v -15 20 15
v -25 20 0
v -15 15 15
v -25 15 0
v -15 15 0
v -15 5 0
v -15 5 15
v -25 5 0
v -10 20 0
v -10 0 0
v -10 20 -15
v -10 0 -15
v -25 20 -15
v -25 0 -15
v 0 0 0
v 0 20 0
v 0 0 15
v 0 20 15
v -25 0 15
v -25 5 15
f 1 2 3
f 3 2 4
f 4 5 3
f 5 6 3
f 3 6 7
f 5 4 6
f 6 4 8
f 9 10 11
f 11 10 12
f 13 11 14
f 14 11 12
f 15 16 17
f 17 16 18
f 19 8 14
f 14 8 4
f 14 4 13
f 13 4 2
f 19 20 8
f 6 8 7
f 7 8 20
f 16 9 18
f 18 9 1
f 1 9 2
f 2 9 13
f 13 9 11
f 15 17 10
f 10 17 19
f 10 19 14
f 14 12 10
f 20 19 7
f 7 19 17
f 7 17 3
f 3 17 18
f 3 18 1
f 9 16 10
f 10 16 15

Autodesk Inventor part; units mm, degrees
ref_plane "YZ Plane" through (0, 0, 0) normal (1, 0, 0) x (0, 1, 0)
ref_plane "XZ Plane" through (0, 0, 0) normal (0, 1, 0) x (-1, 0, 0)
ref_plane "XY Plane" through (0, 0, 0) normal (0, 0, 1) x (1, 0, 0)
sketch "Sketch3" plane through (0, 0, 0) normal (0, 0, 1) x (1, 0, 0)
  line L0 (0, 0) -> (-10, 0)
  line L1 (-25, 0) -> (-25, 5)
  line L2 (-25, 5) -> (-15, 5)
  line L3 (-15, 5) -> (-15, 20)
  line L4 (-15, 20) -> (-10, 20)
  line L5 (0, 20) -> (0, 0)
  line L6 (0, 20) -> (-10, 20)
  line L7 (-10, 20) -> (-10, 0)
  line L8 (-10, 20) -> (0, 20)
  line L9 (-10, 0) -> (-25, 0)
  line L10 (-25, 5) -> (-25, 20)
  line L11 (-25, 20) -> (-15, 20)
  dimension "d12" = 25
  dimension "d13" = 5
  dimension "d14" = 10
  dimension "d15" = 15
  dimension "d16" = 15
  dimension "d19" = 10
extrude "Extrusion1" add sketch "Sketch3" along normal blind 15 contours L0 L7 L6 L5 | L9 L1 L2 L3 L4 L7
extrude "Extrusion2" add sketch "Sketch3" against normal blind 15 contours L9 L1 L2 L3 L4 L7 | L3 L2 L10 L11
sketch "Sketch4" plane through (-15, 20, 15) normal (0, 1, 0) x (1, 0, 0)
  line L0 (-10, 15) -> (-10, 30) projected
  line L1 (0, 15) -> (-10, 15)
  line L2 (-10, 15) -> (0, 0)
  line L3 (0, 0) -> (0, 15)
  point P0 (15, 15)
extrude "Extrusion3" add sketch "Sketch4" against normal blind 5
